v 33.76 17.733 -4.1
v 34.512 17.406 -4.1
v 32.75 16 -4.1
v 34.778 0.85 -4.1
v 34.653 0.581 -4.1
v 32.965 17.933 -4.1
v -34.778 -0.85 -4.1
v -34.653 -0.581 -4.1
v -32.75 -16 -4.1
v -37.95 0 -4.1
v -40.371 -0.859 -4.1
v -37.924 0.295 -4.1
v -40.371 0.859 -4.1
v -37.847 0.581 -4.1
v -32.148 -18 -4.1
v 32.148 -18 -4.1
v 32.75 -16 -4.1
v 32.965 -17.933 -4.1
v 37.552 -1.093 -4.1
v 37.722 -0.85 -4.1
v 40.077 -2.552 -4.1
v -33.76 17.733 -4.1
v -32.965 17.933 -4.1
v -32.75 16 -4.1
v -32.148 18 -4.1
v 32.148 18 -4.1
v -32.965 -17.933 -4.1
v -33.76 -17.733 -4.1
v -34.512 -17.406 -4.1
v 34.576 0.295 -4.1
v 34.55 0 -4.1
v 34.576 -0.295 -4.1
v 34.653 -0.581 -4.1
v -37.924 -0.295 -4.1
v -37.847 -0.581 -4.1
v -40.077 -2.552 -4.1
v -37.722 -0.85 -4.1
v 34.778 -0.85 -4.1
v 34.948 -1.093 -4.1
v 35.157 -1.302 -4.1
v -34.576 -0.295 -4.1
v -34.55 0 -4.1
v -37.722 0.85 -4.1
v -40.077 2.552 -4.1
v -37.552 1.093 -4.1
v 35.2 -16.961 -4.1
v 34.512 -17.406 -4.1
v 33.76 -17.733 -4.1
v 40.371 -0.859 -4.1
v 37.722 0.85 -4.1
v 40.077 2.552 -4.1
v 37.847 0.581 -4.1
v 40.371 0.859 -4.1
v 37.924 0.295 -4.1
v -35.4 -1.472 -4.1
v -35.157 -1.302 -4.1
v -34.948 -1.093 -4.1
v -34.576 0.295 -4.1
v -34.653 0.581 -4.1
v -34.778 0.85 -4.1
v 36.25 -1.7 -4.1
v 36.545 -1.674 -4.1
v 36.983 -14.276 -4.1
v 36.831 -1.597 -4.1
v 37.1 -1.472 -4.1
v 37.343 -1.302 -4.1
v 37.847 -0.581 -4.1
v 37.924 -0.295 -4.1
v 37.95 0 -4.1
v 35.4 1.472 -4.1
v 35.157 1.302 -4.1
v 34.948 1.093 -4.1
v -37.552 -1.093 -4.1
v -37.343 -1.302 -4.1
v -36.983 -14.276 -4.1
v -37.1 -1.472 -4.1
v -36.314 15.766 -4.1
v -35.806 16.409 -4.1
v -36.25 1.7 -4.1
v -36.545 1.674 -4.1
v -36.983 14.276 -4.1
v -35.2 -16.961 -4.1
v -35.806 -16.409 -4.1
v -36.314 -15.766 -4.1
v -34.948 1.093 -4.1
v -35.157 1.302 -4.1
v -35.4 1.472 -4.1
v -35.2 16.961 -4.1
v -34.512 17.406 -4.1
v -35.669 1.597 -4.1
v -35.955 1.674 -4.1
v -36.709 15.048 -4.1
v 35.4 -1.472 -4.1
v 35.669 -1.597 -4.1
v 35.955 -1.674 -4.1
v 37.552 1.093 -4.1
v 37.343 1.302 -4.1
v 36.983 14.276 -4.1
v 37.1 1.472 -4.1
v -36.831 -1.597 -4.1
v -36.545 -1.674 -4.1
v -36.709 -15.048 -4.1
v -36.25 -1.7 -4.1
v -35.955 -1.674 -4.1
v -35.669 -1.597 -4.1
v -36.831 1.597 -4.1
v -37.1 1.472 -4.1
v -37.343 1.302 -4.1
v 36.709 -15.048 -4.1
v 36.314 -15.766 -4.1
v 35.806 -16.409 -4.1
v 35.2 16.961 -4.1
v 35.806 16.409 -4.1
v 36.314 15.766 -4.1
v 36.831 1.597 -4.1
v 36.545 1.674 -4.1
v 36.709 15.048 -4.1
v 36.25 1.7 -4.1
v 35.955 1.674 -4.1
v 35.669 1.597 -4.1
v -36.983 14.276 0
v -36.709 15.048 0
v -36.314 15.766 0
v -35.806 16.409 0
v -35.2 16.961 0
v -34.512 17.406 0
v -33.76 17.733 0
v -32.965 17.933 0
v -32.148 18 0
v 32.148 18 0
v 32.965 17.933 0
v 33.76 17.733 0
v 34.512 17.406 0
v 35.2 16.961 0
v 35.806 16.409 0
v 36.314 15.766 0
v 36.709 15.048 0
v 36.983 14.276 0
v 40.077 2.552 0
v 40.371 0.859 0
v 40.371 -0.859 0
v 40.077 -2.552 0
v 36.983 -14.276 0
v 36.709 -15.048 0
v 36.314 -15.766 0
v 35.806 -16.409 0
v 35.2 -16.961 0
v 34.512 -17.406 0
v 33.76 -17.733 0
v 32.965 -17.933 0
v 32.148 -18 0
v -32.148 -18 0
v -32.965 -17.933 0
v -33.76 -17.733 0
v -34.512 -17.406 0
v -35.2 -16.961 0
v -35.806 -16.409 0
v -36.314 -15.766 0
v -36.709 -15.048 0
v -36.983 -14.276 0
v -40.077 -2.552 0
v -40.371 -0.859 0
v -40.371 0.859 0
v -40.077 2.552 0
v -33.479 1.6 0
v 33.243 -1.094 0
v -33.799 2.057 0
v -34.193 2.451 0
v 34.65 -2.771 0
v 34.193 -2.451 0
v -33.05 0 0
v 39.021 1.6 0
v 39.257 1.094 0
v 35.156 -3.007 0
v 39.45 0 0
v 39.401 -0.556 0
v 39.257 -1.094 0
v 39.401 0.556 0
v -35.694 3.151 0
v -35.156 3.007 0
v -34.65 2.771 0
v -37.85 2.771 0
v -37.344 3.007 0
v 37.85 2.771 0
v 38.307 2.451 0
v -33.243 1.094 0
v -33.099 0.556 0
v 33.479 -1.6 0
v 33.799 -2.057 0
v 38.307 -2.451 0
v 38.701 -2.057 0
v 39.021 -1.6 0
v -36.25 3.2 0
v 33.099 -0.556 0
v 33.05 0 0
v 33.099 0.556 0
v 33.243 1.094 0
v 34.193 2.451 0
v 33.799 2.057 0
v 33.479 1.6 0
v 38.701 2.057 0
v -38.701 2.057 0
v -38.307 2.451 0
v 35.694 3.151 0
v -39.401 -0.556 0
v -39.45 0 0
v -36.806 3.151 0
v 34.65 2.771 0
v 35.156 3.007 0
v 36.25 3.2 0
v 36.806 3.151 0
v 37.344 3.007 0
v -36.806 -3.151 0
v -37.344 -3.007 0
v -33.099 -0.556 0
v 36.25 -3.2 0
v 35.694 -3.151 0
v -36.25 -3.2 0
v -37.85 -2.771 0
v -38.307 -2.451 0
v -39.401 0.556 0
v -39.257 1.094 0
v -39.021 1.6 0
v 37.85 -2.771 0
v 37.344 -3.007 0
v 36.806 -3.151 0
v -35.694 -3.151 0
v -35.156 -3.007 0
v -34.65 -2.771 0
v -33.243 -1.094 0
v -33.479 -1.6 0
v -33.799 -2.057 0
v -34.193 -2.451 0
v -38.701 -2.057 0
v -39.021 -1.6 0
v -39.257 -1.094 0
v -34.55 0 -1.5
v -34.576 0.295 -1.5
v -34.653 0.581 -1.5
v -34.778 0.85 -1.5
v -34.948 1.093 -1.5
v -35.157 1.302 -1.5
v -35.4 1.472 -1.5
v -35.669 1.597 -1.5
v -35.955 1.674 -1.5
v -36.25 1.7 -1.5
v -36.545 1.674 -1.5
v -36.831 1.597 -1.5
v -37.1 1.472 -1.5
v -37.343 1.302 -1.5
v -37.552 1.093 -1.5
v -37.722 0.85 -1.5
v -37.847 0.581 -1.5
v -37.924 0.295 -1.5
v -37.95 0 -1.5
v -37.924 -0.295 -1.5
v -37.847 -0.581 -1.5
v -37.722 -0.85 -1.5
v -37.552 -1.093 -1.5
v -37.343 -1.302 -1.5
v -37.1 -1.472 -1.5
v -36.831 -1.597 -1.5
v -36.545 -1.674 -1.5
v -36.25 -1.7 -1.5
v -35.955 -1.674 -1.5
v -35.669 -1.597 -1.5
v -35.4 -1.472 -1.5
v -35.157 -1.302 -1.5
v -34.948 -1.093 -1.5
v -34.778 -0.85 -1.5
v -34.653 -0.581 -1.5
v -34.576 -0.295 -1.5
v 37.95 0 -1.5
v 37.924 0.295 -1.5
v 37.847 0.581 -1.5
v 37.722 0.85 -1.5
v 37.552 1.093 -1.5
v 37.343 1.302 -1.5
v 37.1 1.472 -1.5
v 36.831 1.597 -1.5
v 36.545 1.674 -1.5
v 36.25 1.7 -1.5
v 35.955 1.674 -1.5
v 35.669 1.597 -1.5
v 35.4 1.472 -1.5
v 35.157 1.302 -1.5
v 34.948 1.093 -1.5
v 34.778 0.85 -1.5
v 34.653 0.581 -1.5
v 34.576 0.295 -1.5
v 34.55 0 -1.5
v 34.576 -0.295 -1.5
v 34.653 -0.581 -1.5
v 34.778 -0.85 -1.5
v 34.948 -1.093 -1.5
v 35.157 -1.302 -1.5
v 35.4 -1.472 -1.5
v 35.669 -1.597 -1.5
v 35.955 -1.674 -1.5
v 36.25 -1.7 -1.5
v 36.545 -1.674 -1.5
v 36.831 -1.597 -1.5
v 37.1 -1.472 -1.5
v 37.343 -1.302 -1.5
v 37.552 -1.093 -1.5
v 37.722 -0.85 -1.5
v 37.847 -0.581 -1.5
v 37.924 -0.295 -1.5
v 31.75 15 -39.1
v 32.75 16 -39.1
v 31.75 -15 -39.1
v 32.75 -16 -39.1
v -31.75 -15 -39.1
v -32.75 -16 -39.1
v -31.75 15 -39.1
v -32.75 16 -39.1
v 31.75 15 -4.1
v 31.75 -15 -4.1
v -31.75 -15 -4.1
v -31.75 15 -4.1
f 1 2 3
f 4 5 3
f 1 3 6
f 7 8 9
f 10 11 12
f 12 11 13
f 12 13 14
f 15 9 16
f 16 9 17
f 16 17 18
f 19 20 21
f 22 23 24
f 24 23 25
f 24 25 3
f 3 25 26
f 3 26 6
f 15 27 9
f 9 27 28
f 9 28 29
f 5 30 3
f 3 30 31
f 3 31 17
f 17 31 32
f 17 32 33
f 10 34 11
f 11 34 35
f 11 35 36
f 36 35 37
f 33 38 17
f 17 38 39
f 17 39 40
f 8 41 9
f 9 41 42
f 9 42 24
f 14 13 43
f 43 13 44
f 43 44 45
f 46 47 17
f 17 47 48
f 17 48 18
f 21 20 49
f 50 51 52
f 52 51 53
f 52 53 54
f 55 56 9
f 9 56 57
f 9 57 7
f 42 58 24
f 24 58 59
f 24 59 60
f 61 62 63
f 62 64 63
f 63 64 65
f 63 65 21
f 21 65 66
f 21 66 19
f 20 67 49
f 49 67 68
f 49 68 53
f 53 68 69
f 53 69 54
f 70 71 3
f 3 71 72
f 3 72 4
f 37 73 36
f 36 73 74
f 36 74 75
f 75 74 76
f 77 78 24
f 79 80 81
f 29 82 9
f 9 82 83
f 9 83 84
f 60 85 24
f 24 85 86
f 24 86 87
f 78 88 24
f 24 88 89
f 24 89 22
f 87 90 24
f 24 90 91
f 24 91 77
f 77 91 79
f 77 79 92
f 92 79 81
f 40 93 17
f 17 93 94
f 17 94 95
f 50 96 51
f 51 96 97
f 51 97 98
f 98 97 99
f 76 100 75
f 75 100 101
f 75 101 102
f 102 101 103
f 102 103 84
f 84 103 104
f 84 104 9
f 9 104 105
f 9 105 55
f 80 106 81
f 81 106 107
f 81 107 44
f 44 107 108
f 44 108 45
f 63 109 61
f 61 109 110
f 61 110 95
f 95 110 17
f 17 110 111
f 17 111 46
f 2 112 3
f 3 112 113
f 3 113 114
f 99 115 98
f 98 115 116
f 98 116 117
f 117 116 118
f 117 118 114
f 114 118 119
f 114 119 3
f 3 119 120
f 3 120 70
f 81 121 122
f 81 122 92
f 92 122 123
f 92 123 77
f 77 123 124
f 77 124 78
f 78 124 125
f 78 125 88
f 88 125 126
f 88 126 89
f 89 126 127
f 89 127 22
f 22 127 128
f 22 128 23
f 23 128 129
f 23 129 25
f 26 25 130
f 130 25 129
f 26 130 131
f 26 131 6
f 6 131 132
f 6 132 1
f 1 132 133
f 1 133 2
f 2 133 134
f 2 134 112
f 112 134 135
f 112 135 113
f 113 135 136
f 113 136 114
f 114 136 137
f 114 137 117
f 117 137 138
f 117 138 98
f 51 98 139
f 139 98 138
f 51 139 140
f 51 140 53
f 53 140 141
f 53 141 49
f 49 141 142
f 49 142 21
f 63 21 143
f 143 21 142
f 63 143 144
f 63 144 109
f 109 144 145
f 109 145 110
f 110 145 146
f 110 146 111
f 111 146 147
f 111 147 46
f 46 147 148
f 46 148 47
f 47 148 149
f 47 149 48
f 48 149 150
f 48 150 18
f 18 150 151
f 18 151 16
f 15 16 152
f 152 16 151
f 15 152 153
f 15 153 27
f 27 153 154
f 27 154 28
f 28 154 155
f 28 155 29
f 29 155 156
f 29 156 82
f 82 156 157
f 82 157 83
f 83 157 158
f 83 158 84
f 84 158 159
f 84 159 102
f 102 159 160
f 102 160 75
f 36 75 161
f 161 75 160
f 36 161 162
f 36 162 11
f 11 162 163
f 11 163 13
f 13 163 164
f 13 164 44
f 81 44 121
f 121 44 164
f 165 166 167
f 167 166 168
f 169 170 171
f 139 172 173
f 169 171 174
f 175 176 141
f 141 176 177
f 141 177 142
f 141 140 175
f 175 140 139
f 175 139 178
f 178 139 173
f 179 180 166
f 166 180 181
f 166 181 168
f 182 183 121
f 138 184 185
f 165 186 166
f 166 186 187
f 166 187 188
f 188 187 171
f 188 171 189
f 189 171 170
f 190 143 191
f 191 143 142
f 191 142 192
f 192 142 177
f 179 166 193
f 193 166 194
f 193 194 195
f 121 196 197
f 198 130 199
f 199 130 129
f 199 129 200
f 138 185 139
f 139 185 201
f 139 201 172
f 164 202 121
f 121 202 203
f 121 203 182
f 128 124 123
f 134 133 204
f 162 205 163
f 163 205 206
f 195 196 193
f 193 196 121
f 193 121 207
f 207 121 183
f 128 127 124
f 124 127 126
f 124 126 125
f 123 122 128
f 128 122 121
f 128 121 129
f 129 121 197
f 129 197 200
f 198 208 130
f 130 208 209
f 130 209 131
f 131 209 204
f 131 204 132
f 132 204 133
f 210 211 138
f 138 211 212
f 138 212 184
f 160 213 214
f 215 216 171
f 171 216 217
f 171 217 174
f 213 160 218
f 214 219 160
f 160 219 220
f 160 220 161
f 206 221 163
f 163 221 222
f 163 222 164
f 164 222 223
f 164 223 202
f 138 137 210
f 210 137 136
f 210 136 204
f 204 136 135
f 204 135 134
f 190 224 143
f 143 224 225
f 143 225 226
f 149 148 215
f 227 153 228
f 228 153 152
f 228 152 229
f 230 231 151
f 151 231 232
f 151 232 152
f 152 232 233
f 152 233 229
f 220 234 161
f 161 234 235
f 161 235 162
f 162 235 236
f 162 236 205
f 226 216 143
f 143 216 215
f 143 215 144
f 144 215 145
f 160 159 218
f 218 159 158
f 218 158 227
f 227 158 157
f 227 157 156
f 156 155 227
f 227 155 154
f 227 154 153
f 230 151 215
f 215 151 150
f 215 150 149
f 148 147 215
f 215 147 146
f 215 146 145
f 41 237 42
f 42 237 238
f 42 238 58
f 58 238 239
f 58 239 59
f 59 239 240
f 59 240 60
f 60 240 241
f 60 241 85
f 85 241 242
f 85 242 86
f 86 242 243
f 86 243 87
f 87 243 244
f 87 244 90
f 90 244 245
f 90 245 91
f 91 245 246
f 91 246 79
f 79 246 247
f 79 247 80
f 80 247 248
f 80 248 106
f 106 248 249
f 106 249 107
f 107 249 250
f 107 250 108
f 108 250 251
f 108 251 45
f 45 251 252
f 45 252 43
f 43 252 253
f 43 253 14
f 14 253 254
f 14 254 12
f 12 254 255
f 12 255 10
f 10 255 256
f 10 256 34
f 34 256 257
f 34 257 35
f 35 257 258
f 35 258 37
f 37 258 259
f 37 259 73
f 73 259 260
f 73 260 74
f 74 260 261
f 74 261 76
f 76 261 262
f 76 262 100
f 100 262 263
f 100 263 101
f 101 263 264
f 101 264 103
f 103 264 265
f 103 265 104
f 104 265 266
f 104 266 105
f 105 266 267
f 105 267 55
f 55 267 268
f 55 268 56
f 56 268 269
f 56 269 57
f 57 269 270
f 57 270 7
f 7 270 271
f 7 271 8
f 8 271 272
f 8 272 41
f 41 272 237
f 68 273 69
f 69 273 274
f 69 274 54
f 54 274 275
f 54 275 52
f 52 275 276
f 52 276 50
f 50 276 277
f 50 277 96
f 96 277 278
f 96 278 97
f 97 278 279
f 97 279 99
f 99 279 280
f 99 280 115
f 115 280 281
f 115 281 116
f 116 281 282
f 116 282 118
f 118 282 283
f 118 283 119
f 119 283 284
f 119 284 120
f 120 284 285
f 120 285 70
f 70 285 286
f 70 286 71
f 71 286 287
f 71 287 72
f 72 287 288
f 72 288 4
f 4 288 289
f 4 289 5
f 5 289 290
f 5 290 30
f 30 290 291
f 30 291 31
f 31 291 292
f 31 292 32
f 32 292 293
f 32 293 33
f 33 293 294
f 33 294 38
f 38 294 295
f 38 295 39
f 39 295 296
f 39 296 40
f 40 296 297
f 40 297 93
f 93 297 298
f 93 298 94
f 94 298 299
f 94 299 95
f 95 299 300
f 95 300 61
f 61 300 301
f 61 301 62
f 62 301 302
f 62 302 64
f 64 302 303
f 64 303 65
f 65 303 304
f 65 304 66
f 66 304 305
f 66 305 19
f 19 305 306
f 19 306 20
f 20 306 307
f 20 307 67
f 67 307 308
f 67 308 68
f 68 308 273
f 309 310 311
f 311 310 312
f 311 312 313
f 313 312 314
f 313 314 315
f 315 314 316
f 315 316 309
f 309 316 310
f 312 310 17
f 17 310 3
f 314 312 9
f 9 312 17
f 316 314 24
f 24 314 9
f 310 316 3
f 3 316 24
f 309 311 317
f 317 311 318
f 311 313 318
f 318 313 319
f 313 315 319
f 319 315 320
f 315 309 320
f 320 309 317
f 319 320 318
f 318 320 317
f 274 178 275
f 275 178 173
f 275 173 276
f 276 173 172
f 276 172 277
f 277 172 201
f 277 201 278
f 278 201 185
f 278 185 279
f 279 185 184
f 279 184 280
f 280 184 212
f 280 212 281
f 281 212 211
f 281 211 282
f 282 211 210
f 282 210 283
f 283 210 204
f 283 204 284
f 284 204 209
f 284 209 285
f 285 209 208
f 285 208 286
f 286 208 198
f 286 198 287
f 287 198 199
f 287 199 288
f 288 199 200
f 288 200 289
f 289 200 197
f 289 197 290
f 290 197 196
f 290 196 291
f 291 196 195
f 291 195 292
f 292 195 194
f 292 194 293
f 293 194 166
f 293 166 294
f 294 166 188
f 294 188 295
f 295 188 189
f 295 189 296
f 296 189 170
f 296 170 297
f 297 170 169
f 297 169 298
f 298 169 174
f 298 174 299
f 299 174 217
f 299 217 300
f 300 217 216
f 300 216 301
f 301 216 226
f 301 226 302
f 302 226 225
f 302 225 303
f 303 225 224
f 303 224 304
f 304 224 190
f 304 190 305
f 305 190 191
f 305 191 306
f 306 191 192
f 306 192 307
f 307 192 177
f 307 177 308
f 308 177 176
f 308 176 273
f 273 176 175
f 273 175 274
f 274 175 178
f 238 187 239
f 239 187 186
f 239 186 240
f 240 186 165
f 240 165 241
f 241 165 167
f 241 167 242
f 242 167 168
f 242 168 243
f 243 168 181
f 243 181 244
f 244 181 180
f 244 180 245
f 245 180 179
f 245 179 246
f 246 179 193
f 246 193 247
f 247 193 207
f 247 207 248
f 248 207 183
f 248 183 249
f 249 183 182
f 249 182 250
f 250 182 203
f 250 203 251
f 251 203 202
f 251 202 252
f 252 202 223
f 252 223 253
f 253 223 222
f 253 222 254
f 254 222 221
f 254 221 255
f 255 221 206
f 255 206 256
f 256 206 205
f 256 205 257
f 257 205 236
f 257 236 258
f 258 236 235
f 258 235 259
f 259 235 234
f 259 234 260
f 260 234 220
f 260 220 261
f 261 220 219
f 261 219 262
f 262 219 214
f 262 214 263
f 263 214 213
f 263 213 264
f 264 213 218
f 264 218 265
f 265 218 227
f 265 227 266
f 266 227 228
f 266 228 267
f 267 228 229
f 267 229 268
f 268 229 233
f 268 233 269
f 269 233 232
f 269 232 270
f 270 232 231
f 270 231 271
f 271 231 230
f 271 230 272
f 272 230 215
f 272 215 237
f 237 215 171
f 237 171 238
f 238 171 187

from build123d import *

# Parameters (mm, degrees)
SCHIZZO1_R                   = 1.7
ESTRUSIONE_ESTRUSIONE1_DEPTH = 4.1
SCHIZZO2_W                   = 65.5
SCHIZZO2_H                   = 32
SCHIZZO2_W_2                 = 63.5
SCHIZZO2_H_2                 = 30
ESTRUSIONE_SOTTILE1_DEPTH    = 35
SMUSSO1_SIZE                 = 1.5


with BuildPart() as part:
    # Schizzo1 → Estrusione-Estrusione1 (new body)
    with BuildSketch(Plane.XY):
        with BuildLine():
            Line((32.14828078, 18), (-32.14828078, 18))
            ThreePointArc((-32.14828078, 18), (-35.199603729, 16.960988294), (-36.982782572, 14.275771306))
            Line((-36.982782572, 14.275771306), (-40.076676255, 2.551542612))
            ThreePointArc((-40.076676255, 2.551542612), (-40.407672672, 0), (-40.076676255, -2.551542612))
            Line((-40.076676255, -2.551542612), (-36.982782572, -14.275771306))
            ThreePointArc((-36.982782572, -14.275771306), (-35.199603729, -16.960988294), (-32.14828078, -18))
            Line((-32.14828078, -18), (32.14828078, -18))
            ThreePointArc((32.14828078, -18), (35.199603729, -16.960988294), (36.982782572, -14.275771306))
            Line((36.982782572, -14.275771306), (40.076676255, -2.551542612))
            ThreePointArc((40.076676255, -2.551542612), (40.407672672, 0), (40.076676255, 2.551542612))
            Line((40.076676255, 2.551542612), (36.982782572, 14.275771306))
            ThreePointArc((36.982782572, 14.275771306), (35.199603729, 16.960988294), (32.14828078, 18))
        make_face()
        with Locations((-36.25, 0)):
            Circle(SCHIZZO1_R, mode=Mode.SUBTRACT)
        with Locations((36.25, 0)):
            Circle(SCHIZZO1_R, mode=Mode.SUBTRACT)
    extrude(amount=-ESTRUSIONE_ESTRUSIONE1_DEPTH)

    # Schizzo2 → Estrusione-Sottile1 (add)
    with BuildSketch(Plane(origin=(0, 0, -4.1), x_dir=(-1, 0, 0), z_dir=(0, 0, -1))):
        Rectangle(SCHIZZO2_W, SCHIZZO2_H)
        Rectangle(SCHIZZO2_W_2, SCHIZZO2_H_2, mode=Mode.SUBTRACT)
    extrude(amount=ESTRUSIONE_SOTTILE1_DEPTH)

    # Smusso1
    smusso1_edges = [part.edges().sort_by_distance(p)[0] for p in [
        (-37.95, 0, 0),
        (34.55, 0, 0),
    ]]
    chamfer(smusso1_edges, length=SMUSSO1_SIZE)


solid = part.part
